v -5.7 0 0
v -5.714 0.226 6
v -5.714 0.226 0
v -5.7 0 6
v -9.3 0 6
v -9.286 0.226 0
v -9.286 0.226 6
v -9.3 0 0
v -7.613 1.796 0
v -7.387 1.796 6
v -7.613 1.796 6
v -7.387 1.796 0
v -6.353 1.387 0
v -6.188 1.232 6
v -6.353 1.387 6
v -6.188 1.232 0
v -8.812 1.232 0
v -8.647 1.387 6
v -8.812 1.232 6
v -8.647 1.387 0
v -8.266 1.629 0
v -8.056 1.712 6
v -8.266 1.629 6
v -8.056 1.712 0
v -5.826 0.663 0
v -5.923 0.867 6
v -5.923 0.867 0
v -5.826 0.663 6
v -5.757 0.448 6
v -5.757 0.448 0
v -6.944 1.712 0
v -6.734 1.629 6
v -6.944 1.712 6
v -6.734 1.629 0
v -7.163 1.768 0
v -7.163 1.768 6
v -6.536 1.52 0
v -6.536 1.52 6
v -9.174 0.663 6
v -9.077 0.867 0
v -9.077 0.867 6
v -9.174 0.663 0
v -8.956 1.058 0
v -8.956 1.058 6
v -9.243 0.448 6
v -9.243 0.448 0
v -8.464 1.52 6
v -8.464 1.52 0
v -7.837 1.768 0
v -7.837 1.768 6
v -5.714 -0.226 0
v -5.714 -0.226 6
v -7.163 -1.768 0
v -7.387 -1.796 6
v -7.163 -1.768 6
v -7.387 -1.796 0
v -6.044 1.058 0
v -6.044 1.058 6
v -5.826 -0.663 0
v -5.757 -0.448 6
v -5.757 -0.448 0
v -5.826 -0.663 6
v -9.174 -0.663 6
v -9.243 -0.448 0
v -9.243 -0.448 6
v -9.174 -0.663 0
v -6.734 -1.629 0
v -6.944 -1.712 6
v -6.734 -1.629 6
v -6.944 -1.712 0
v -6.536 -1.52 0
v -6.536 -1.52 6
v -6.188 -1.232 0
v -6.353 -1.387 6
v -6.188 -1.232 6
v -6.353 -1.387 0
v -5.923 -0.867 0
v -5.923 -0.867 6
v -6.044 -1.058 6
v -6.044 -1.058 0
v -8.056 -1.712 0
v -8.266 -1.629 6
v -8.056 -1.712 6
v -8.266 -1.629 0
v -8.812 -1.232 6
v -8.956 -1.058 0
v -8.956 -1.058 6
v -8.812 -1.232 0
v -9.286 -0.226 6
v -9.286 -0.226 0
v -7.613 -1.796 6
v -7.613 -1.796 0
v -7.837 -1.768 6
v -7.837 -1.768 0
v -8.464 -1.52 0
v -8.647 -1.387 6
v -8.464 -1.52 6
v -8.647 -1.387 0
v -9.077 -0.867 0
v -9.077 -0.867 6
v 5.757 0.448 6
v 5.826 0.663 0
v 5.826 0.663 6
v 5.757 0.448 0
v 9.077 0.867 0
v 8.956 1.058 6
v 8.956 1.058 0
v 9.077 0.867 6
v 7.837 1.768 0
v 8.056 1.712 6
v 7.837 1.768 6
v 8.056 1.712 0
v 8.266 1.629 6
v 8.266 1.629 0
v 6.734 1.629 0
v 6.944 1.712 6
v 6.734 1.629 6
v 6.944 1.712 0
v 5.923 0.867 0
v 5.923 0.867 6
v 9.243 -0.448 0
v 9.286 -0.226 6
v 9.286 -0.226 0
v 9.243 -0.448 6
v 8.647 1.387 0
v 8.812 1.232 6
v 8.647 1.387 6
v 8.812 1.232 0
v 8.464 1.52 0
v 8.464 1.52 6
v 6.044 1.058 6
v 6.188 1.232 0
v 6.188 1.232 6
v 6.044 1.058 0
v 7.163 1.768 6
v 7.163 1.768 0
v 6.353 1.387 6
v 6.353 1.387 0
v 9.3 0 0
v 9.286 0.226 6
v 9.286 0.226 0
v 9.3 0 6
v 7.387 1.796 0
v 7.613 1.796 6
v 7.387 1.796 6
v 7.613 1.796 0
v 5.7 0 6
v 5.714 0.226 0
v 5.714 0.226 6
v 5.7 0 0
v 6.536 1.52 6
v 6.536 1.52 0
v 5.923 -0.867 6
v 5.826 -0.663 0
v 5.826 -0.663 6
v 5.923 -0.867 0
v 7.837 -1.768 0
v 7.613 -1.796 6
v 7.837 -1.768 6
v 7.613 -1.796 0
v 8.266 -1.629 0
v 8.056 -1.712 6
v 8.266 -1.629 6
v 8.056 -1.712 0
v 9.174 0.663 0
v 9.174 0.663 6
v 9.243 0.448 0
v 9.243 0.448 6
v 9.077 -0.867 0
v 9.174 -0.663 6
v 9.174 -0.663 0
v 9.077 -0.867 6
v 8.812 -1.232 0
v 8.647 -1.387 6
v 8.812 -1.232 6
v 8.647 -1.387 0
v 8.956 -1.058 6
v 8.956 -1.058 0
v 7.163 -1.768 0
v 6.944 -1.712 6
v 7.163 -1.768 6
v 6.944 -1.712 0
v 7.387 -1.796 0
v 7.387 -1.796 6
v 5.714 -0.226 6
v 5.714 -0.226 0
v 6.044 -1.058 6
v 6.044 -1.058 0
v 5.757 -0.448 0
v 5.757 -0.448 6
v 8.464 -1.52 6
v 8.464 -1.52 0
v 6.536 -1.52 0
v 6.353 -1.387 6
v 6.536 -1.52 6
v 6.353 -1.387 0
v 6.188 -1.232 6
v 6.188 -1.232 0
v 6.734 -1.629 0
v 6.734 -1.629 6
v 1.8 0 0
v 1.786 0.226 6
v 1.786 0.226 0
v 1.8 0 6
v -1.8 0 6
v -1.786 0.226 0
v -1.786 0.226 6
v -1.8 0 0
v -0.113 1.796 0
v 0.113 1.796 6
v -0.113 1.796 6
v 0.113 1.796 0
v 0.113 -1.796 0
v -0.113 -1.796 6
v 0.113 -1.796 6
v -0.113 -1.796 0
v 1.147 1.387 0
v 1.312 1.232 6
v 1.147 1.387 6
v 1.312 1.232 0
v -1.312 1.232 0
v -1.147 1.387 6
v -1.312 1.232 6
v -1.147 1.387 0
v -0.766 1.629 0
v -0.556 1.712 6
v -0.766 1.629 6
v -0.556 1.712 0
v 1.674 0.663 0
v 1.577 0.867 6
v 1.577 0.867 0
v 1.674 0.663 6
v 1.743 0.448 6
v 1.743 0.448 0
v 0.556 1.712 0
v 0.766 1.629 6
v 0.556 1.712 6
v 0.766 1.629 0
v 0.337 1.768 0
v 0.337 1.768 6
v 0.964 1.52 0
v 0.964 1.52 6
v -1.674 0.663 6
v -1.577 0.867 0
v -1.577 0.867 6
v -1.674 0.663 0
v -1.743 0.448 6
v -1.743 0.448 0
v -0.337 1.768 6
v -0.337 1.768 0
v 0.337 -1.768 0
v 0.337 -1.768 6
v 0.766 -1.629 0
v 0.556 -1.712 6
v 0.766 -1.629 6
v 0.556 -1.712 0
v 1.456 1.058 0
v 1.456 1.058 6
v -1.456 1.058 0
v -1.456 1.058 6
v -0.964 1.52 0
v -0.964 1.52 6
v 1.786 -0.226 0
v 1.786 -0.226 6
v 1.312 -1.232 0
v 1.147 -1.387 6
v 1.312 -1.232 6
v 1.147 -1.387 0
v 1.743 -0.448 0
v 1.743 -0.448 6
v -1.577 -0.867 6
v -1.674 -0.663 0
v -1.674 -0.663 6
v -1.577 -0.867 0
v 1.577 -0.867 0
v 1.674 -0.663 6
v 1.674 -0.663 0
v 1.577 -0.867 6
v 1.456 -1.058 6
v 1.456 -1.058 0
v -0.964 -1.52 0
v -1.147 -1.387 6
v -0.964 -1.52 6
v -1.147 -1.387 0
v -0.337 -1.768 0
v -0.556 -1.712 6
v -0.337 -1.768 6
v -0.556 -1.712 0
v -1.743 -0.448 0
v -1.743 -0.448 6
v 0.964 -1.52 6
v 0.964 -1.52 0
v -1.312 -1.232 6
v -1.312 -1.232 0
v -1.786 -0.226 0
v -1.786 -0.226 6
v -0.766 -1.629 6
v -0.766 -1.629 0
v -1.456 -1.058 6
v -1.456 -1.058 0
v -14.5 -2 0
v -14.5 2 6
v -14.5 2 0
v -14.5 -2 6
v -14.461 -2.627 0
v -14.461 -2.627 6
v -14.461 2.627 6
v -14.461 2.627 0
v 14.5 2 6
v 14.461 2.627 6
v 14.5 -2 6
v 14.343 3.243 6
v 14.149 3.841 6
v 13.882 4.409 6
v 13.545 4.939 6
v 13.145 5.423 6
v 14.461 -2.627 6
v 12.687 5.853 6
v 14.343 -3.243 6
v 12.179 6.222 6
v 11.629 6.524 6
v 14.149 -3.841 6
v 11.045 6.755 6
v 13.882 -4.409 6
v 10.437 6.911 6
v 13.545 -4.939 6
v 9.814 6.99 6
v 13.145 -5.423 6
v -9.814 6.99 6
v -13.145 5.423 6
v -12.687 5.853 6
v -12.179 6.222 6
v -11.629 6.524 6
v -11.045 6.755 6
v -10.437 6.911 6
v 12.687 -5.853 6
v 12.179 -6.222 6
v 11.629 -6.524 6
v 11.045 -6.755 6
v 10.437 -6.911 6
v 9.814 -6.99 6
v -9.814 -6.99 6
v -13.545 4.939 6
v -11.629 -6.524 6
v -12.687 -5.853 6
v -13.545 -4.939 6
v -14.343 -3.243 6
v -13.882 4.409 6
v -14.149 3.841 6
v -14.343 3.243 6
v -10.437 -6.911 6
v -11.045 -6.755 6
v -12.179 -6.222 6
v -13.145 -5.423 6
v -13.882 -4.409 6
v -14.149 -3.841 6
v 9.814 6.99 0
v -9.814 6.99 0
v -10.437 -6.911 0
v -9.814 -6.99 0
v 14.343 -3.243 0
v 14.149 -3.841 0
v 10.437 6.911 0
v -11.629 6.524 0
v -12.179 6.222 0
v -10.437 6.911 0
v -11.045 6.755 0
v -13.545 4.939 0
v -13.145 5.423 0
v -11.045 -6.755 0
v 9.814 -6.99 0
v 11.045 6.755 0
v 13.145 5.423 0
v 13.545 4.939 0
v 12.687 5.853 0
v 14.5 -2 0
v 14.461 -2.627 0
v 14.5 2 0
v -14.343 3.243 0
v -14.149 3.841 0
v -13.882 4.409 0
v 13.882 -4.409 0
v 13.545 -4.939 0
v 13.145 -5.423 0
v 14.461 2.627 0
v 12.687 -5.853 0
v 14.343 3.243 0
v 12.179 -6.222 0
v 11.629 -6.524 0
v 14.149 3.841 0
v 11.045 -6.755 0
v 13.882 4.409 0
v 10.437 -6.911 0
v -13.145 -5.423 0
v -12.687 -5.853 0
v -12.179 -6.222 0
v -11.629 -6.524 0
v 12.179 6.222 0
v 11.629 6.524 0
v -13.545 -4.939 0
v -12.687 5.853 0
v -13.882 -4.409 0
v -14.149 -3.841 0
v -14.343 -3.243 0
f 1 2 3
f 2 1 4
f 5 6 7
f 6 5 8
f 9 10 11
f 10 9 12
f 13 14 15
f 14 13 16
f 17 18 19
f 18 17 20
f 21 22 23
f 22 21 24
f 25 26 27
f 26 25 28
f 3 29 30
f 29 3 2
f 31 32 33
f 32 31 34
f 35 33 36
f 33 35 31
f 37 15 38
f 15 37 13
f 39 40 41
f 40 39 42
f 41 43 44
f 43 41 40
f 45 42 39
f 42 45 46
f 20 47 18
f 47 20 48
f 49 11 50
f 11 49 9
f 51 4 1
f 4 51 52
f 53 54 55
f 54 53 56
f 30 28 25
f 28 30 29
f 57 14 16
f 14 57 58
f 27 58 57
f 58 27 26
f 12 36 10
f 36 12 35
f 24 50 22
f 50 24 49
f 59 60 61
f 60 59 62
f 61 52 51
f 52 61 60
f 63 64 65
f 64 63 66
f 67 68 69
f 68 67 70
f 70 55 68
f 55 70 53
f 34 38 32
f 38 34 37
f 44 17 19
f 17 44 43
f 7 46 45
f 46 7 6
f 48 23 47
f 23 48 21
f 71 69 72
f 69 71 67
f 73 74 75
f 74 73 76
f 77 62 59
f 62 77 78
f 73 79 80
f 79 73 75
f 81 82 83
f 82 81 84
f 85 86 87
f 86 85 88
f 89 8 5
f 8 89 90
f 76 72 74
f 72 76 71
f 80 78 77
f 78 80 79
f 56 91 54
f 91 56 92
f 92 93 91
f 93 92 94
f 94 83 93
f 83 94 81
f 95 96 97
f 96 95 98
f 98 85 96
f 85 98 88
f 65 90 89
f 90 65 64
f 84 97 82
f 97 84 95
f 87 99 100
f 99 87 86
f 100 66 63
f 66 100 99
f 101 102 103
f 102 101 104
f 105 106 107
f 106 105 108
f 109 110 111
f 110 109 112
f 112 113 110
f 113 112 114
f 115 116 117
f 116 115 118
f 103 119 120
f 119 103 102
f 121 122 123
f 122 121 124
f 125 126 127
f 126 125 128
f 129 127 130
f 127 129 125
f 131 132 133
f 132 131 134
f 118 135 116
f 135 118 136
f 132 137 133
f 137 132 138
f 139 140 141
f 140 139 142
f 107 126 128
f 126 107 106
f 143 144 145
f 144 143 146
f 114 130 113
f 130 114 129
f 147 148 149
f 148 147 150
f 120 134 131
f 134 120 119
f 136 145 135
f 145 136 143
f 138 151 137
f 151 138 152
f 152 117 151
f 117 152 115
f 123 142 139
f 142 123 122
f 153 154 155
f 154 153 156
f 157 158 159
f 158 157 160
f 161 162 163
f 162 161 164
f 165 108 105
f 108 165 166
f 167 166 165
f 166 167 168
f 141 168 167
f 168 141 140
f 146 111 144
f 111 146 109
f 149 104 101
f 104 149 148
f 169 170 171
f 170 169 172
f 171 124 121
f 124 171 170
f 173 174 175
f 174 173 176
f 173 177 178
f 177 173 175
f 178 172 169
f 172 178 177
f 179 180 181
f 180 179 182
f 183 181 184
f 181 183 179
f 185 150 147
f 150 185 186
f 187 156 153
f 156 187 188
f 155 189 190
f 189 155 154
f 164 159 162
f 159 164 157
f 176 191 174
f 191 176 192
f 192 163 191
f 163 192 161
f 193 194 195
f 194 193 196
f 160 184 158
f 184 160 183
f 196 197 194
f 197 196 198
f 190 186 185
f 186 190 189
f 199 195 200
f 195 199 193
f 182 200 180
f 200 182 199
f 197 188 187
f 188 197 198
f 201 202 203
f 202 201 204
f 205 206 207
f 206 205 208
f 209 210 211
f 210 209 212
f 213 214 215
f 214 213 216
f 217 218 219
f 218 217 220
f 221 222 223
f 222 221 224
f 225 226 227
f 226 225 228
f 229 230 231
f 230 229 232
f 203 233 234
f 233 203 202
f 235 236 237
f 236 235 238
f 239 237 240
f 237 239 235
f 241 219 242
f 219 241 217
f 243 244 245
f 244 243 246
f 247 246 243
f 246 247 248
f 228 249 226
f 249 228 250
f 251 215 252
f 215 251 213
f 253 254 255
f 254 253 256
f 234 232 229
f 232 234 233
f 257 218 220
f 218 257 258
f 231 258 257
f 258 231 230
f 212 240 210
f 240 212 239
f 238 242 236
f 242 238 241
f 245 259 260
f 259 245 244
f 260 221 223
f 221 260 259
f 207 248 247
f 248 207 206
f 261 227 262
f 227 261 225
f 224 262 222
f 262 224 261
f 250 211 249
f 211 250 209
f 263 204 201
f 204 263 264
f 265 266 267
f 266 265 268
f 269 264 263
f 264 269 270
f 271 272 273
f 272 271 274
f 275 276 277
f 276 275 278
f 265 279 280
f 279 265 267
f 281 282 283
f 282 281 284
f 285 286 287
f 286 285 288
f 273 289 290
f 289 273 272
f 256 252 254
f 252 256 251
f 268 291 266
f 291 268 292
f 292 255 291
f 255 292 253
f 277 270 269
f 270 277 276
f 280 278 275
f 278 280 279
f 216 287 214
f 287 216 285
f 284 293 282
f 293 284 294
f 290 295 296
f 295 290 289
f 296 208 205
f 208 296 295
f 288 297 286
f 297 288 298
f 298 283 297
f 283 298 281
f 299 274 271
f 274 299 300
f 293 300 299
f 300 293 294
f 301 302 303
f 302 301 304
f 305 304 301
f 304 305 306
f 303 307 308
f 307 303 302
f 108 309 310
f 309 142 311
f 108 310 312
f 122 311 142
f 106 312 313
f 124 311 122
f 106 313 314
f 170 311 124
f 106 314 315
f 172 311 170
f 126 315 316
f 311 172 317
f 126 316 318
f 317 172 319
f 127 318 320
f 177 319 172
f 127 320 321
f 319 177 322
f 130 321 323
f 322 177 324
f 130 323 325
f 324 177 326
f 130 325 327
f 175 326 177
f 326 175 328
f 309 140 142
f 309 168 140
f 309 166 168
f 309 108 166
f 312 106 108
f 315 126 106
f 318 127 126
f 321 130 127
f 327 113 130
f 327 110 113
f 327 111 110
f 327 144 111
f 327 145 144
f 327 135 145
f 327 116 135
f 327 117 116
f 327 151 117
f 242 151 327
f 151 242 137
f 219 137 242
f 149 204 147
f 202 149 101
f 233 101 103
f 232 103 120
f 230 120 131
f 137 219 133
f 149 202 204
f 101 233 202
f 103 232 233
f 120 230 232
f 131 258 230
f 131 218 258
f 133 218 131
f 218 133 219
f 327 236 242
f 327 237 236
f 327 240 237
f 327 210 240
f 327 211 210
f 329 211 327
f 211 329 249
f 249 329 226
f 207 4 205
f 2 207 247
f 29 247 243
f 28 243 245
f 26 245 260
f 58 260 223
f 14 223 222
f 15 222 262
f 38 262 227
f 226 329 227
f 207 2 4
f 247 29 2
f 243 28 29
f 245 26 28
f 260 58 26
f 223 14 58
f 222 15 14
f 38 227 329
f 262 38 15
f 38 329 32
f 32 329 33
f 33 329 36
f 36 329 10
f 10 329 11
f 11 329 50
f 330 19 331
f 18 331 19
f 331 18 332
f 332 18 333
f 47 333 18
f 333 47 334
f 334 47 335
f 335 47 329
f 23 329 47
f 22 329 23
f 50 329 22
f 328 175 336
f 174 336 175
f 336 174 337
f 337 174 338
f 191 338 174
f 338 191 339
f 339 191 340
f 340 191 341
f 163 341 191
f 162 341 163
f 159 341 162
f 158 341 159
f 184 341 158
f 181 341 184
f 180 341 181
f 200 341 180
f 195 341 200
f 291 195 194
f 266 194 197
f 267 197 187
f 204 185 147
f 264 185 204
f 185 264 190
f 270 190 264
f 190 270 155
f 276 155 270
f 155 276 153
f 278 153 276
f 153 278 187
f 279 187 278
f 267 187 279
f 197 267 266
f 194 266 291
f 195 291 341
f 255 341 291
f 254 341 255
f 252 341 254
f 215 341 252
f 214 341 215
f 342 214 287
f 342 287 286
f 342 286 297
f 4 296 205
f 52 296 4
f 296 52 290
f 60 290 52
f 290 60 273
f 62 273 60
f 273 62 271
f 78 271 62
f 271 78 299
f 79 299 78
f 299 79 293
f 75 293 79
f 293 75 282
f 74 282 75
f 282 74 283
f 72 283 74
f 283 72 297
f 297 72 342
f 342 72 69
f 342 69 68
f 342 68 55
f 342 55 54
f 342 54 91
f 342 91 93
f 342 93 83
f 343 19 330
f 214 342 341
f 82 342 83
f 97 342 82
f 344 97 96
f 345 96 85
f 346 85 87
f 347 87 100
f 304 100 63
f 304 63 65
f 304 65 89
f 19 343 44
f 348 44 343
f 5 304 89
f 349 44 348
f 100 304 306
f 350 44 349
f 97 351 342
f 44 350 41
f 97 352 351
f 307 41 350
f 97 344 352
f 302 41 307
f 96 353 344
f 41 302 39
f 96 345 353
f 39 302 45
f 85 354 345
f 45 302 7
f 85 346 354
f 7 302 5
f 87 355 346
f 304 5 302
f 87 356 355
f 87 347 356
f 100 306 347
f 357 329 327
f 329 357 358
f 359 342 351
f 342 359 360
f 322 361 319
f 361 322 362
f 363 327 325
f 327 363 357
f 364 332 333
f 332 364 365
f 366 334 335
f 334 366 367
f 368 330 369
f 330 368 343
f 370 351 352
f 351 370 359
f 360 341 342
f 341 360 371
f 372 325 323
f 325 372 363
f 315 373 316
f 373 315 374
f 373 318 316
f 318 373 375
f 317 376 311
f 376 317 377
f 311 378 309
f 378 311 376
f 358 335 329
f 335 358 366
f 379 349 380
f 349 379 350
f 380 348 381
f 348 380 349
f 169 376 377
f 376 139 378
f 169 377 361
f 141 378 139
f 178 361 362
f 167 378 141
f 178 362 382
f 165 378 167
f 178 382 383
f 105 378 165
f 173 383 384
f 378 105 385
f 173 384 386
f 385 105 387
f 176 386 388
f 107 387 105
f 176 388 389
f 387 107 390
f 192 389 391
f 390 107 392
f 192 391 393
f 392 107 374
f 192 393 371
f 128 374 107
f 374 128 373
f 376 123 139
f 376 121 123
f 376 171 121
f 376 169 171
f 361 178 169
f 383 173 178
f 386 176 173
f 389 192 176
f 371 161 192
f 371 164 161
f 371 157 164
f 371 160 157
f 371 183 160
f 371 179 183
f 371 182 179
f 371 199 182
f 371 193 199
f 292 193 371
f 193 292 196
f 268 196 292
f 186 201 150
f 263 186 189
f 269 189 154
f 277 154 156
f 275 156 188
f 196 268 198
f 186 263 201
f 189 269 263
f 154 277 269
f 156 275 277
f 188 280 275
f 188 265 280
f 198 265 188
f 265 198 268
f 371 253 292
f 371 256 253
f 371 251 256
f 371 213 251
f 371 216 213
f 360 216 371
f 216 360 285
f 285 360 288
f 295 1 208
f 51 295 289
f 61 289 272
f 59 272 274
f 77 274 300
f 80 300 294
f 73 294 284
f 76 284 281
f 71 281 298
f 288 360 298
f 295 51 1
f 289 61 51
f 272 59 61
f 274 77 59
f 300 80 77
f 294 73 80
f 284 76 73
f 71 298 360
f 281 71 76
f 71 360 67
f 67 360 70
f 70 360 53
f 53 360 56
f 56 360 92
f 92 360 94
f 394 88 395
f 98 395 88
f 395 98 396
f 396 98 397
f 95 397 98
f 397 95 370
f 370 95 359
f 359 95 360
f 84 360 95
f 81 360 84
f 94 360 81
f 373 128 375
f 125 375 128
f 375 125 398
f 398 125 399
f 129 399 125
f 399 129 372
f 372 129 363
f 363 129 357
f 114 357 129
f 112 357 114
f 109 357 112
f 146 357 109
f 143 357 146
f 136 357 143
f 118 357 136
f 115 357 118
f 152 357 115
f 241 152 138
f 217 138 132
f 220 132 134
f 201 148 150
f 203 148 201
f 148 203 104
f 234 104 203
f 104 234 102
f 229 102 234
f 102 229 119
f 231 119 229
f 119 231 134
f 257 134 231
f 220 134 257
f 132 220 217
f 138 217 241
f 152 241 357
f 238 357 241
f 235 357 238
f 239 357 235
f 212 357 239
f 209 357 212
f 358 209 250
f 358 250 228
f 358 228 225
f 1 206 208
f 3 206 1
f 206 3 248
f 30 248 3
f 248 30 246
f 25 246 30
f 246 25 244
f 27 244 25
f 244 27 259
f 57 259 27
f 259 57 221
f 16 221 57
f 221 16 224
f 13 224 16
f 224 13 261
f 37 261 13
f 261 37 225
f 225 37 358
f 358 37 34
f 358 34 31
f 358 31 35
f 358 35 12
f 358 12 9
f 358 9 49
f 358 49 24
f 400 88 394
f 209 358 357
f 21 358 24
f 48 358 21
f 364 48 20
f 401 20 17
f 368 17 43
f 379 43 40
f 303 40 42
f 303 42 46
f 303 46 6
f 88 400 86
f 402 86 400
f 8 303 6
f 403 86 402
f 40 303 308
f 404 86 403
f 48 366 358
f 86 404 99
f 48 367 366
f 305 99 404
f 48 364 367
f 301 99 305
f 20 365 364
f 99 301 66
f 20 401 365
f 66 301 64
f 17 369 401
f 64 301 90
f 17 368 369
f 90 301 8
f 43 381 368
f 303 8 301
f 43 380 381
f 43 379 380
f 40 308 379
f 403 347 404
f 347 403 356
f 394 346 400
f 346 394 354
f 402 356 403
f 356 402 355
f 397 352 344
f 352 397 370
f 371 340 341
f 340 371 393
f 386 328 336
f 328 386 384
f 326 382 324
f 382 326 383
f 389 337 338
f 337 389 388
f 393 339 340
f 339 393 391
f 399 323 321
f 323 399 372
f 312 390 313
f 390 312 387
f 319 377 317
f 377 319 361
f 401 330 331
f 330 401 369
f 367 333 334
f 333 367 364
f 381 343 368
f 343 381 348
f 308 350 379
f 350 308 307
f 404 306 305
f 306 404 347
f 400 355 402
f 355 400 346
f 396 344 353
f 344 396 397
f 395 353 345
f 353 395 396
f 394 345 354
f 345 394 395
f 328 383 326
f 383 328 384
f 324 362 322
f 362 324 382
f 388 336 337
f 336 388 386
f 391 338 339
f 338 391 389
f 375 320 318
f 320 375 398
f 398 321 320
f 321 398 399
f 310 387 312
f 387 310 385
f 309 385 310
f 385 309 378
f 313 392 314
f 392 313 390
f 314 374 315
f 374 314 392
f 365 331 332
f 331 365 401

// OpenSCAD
$fn = 50;


difference() {
	union() {
		hull() {
			translate(v = [-9.5000000000, 2.0000000000, 0]) {
				cylinder(h = 6, r = 5);
			}
			translate(v = [9.5000000000, 2.0000000000, 0]) {
				cylinder(h = 6, r = 5);
			}
			translate(v = [-9.5000000000, -2.0000000000, 0]) {
				cylinder(h = 6, r = 5);
			}
			translate(v = [9.5000000000, -2.0000000000, 0]) {
				cylinder(h = 6, r = 5);
			}
		}
	}
	union() {
		translate(v = [-7.5000000000, 0.0000000000, 0]) {
			translate(v = [0, 0, -100]) {
				cylinder(h = 200, r = 1.8000000000);
			}
		}
		translate(v = [7.5000000000, 0.0000000000, 0]) {
			translate(v = [0, 0, -100]) {
				cylinder(h = 200, r = 1.8000000000);
			}
		}
		translate(v = [-7.5000000000, 0.0000000000, 0]) {
			translate(v = [0, 0, -100]) {
				cylinder(h = 200, r = 1.8000000000);
			}
		}
		translate(v = [0, 0, -100]) {
			cylinder(h = 200, r = 1.8000000000);
		}
		translate(v = [7.5000000000, 0.0000000000, 0]) {
			translate(v = [0, 0, -100]) {
				cylinder(h = 200, r = 1.8000000000);
			}
		}
	}
}
